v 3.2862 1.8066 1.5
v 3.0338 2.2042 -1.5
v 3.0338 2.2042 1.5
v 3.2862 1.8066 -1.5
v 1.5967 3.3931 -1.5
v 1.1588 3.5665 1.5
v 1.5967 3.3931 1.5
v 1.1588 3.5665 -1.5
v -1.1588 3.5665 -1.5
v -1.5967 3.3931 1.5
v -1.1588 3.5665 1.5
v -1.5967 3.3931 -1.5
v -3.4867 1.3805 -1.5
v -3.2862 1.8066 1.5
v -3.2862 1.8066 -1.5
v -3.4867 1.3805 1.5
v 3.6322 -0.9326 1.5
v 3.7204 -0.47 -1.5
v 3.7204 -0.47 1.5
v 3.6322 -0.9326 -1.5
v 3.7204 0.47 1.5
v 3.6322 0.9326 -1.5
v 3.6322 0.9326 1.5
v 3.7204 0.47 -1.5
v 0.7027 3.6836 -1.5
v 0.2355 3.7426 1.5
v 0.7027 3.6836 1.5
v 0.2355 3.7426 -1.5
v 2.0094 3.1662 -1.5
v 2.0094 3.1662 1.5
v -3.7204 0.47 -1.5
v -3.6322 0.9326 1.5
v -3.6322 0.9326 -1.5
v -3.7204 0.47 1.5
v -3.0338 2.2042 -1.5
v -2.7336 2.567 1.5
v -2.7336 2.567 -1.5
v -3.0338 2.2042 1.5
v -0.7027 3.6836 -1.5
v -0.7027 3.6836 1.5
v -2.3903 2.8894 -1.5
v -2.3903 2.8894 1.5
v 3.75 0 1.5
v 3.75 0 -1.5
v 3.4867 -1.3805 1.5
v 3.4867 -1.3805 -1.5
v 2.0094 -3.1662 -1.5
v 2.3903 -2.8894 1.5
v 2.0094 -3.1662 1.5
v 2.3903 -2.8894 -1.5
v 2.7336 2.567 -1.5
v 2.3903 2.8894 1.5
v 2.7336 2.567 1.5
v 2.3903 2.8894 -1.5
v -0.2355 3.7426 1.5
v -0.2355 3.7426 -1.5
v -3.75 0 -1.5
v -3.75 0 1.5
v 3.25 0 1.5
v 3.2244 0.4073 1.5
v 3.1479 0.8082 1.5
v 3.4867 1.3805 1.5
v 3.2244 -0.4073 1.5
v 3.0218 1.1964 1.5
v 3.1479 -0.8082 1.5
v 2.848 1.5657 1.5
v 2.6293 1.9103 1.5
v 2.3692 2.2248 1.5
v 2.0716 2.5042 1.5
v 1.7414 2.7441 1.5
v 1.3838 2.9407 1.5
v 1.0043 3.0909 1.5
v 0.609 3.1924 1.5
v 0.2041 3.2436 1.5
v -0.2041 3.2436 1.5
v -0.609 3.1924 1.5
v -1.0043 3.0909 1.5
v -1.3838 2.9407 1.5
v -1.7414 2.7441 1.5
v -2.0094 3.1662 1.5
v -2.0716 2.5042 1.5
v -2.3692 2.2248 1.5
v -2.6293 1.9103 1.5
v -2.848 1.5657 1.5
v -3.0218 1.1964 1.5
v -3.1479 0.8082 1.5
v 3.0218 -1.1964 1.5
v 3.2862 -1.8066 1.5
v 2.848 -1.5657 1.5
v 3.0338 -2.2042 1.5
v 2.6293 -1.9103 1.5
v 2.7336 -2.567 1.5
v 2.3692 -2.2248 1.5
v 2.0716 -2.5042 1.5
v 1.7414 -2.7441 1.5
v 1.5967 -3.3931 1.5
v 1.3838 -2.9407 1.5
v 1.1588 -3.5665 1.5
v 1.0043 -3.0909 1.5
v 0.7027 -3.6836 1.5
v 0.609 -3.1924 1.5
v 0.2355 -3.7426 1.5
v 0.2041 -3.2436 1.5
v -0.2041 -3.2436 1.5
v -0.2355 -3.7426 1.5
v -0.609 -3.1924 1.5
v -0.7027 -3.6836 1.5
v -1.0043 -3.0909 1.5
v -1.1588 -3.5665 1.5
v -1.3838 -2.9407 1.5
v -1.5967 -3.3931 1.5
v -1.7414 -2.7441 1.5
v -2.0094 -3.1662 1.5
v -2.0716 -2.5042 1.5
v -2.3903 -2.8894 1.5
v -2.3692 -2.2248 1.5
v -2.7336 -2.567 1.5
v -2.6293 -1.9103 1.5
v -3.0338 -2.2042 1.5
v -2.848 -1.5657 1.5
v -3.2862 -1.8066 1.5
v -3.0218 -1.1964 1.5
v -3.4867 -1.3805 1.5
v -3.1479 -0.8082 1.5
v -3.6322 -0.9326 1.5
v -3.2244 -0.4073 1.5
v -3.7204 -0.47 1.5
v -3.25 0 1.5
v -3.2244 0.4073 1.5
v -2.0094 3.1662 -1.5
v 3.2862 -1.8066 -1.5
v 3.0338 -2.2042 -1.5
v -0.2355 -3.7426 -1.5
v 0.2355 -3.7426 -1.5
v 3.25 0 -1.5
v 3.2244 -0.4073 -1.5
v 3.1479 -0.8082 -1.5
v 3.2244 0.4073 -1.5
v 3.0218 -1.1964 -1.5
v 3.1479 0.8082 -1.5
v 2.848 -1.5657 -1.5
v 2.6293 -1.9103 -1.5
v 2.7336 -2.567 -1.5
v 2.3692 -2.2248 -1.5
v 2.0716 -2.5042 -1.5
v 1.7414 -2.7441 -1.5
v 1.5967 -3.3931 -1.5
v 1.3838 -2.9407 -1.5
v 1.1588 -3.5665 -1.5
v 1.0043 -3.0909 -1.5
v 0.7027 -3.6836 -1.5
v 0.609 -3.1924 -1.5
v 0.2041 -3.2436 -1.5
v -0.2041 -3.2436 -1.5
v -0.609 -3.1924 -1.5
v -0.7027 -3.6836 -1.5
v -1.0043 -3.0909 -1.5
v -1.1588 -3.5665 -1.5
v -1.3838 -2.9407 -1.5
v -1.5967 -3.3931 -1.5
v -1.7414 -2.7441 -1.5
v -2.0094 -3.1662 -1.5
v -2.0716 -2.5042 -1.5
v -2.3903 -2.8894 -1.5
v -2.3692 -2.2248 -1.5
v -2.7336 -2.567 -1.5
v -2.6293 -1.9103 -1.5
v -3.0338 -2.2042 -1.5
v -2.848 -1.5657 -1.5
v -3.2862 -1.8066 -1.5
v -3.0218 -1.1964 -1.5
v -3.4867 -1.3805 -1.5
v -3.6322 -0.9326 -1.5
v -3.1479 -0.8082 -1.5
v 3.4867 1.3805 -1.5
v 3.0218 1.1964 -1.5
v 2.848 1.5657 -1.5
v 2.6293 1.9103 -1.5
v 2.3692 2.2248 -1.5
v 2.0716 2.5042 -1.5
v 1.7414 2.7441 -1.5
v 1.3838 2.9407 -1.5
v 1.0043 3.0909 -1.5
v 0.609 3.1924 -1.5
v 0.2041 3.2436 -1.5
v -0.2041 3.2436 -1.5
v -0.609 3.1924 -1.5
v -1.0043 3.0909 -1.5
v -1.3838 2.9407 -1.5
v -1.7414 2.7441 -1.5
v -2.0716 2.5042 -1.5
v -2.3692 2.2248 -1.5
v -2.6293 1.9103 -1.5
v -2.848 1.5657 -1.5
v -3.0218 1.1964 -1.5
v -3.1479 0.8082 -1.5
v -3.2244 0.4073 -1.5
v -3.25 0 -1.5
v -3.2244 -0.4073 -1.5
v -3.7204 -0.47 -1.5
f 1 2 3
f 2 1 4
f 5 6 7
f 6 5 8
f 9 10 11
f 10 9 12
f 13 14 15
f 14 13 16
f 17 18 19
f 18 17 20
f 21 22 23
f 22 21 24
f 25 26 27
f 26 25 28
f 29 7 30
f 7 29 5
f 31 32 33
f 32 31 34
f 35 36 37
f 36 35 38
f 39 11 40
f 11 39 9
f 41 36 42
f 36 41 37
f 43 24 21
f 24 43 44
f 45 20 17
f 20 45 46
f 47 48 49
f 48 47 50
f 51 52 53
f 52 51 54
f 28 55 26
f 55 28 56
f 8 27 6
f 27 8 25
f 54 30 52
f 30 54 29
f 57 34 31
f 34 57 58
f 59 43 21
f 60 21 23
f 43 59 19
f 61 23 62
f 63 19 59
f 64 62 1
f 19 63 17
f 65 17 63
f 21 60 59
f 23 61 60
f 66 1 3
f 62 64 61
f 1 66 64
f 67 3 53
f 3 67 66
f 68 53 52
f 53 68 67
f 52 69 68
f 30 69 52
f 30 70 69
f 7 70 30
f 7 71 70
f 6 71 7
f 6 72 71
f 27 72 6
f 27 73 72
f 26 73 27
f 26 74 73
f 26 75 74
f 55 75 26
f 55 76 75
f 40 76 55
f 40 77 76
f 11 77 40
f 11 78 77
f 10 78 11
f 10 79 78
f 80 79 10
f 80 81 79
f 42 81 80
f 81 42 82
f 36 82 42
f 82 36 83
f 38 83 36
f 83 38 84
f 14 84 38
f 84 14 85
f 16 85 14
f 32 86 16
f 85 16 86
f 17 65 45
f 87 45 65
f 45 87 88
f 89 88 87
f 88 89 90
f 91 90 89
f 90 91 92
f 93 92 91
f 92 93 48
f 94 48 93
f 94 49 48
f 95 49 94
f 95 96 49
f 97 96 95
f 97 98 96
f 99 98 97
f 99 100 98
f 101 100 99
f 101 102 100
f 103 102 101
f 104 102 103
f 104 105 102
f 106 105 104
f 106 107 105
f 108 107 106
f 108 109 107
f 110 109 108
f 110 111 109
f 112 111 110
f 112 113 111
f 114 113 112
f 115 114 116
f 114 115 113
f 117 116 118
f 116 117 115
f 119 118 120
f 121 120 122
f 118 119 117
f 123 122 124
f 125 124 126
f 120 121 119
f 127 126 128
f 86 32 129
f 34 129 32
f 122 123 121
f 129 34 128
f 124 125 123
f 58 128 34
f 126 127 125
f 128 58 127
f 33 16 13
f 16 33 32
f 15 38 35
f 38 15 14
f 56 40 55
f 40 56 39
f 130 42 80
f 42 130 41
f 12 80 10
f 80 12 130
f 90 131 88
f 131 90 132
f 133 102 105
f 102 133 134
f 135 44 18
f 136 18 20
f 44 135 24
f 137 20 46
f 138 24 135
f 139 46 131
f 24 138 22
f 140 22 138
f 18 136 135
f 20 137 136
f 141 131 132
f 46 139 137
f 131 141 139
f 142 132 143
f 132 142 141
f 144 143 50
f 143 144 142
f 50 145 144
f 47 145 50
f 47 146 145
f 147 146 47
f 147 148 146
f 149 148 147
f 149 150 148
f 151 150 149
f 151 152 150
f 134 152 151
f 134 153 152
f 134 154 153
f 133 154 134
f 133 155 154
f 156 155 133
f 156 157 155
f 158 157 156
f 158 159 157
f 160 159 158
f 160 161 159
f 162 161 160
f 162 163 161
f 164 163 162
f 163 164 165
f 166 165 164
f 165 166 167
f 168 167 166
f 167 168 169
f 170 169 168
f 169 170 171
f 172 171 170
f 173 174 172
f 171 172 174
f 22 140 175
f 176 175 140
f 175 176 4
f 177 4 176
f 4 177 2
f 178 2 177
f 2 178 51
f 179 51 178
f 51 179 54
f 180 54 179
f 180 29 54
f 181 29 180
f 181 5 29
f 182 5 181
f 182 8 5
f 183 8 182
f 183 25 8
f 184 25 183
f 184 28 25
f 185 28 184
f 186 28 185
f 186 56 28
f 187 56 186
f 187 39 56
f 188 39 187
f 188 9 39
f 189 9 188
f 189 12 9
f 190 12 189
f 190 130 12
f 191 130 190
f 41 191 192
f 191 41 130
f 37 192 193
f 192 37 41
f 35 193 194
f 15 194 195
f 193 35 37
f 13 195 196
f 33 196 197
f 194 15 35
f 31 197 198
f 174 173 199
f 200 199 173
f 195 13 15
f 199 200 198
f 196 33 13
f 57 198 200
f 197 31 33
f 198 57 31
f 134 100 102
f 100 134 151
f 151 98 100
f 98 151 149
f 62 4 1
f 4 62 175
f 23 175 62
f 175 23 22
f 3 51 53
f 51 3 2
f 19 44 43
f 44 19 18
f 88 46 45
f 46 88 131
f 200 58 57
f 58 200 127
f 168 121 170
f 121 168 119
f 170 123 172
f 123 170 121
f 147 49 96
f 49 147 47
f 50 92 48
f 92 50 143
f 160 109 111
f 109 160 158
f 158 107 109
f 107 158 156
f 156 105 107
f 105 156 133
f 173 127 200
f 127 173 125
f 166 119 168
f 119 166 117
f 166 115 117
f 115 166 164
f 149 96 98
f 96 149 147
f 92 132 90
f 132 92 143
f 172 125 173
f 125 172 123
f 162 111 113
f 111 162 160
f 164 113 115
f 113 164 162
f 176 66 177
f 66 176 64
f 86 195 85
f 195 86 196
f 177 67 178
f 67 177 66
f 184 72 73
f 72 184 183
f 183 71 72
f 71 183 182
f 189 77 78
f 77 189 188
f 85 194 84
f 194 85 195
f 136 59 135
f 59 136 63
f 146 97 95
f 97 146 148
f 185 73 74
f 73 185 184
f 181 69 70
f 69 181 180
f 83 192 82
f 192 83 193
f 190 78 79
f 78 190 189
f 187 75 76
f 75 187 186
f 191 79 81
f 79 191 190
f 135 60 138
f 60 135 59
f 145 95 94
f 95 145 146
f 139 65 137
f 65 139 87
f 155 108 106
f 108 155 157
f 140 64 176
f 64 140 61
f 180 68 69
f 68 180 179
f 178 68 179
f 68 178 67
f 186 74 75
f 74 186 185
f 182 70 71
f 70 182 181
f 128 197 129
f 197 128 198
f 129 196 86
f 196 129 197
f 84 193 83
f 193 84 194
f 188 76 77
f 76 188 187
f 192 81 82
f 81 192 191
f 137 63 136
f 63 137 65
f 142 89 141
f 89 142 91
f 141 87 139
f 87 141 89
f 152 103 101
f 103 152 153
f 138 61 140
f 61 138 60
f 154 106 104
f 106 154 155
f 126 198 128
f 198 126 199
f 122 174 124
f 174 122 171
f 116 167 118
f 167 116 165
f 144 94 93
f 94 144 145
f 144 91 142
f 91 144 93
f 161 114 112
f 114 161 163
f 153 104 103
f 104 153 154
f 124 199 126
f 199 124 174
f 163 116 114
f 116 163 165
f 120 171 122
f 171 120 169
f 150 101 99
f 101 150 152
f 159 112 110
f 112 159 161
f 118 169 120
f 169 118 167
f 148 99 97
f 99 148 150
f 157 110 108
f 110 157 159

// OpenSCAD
$fn = 50;


difference() {
	union() {
		translate(v = [0, 0, -1.5000000000]) {
			cylinder(h = 3, r = 3.7500000000);
		}
	}
	union() {
		translate(v = [0, 0, -100.0000000000]) {
			cylinder(h = 200, r = 3.2500000000);
		}
	}
}
